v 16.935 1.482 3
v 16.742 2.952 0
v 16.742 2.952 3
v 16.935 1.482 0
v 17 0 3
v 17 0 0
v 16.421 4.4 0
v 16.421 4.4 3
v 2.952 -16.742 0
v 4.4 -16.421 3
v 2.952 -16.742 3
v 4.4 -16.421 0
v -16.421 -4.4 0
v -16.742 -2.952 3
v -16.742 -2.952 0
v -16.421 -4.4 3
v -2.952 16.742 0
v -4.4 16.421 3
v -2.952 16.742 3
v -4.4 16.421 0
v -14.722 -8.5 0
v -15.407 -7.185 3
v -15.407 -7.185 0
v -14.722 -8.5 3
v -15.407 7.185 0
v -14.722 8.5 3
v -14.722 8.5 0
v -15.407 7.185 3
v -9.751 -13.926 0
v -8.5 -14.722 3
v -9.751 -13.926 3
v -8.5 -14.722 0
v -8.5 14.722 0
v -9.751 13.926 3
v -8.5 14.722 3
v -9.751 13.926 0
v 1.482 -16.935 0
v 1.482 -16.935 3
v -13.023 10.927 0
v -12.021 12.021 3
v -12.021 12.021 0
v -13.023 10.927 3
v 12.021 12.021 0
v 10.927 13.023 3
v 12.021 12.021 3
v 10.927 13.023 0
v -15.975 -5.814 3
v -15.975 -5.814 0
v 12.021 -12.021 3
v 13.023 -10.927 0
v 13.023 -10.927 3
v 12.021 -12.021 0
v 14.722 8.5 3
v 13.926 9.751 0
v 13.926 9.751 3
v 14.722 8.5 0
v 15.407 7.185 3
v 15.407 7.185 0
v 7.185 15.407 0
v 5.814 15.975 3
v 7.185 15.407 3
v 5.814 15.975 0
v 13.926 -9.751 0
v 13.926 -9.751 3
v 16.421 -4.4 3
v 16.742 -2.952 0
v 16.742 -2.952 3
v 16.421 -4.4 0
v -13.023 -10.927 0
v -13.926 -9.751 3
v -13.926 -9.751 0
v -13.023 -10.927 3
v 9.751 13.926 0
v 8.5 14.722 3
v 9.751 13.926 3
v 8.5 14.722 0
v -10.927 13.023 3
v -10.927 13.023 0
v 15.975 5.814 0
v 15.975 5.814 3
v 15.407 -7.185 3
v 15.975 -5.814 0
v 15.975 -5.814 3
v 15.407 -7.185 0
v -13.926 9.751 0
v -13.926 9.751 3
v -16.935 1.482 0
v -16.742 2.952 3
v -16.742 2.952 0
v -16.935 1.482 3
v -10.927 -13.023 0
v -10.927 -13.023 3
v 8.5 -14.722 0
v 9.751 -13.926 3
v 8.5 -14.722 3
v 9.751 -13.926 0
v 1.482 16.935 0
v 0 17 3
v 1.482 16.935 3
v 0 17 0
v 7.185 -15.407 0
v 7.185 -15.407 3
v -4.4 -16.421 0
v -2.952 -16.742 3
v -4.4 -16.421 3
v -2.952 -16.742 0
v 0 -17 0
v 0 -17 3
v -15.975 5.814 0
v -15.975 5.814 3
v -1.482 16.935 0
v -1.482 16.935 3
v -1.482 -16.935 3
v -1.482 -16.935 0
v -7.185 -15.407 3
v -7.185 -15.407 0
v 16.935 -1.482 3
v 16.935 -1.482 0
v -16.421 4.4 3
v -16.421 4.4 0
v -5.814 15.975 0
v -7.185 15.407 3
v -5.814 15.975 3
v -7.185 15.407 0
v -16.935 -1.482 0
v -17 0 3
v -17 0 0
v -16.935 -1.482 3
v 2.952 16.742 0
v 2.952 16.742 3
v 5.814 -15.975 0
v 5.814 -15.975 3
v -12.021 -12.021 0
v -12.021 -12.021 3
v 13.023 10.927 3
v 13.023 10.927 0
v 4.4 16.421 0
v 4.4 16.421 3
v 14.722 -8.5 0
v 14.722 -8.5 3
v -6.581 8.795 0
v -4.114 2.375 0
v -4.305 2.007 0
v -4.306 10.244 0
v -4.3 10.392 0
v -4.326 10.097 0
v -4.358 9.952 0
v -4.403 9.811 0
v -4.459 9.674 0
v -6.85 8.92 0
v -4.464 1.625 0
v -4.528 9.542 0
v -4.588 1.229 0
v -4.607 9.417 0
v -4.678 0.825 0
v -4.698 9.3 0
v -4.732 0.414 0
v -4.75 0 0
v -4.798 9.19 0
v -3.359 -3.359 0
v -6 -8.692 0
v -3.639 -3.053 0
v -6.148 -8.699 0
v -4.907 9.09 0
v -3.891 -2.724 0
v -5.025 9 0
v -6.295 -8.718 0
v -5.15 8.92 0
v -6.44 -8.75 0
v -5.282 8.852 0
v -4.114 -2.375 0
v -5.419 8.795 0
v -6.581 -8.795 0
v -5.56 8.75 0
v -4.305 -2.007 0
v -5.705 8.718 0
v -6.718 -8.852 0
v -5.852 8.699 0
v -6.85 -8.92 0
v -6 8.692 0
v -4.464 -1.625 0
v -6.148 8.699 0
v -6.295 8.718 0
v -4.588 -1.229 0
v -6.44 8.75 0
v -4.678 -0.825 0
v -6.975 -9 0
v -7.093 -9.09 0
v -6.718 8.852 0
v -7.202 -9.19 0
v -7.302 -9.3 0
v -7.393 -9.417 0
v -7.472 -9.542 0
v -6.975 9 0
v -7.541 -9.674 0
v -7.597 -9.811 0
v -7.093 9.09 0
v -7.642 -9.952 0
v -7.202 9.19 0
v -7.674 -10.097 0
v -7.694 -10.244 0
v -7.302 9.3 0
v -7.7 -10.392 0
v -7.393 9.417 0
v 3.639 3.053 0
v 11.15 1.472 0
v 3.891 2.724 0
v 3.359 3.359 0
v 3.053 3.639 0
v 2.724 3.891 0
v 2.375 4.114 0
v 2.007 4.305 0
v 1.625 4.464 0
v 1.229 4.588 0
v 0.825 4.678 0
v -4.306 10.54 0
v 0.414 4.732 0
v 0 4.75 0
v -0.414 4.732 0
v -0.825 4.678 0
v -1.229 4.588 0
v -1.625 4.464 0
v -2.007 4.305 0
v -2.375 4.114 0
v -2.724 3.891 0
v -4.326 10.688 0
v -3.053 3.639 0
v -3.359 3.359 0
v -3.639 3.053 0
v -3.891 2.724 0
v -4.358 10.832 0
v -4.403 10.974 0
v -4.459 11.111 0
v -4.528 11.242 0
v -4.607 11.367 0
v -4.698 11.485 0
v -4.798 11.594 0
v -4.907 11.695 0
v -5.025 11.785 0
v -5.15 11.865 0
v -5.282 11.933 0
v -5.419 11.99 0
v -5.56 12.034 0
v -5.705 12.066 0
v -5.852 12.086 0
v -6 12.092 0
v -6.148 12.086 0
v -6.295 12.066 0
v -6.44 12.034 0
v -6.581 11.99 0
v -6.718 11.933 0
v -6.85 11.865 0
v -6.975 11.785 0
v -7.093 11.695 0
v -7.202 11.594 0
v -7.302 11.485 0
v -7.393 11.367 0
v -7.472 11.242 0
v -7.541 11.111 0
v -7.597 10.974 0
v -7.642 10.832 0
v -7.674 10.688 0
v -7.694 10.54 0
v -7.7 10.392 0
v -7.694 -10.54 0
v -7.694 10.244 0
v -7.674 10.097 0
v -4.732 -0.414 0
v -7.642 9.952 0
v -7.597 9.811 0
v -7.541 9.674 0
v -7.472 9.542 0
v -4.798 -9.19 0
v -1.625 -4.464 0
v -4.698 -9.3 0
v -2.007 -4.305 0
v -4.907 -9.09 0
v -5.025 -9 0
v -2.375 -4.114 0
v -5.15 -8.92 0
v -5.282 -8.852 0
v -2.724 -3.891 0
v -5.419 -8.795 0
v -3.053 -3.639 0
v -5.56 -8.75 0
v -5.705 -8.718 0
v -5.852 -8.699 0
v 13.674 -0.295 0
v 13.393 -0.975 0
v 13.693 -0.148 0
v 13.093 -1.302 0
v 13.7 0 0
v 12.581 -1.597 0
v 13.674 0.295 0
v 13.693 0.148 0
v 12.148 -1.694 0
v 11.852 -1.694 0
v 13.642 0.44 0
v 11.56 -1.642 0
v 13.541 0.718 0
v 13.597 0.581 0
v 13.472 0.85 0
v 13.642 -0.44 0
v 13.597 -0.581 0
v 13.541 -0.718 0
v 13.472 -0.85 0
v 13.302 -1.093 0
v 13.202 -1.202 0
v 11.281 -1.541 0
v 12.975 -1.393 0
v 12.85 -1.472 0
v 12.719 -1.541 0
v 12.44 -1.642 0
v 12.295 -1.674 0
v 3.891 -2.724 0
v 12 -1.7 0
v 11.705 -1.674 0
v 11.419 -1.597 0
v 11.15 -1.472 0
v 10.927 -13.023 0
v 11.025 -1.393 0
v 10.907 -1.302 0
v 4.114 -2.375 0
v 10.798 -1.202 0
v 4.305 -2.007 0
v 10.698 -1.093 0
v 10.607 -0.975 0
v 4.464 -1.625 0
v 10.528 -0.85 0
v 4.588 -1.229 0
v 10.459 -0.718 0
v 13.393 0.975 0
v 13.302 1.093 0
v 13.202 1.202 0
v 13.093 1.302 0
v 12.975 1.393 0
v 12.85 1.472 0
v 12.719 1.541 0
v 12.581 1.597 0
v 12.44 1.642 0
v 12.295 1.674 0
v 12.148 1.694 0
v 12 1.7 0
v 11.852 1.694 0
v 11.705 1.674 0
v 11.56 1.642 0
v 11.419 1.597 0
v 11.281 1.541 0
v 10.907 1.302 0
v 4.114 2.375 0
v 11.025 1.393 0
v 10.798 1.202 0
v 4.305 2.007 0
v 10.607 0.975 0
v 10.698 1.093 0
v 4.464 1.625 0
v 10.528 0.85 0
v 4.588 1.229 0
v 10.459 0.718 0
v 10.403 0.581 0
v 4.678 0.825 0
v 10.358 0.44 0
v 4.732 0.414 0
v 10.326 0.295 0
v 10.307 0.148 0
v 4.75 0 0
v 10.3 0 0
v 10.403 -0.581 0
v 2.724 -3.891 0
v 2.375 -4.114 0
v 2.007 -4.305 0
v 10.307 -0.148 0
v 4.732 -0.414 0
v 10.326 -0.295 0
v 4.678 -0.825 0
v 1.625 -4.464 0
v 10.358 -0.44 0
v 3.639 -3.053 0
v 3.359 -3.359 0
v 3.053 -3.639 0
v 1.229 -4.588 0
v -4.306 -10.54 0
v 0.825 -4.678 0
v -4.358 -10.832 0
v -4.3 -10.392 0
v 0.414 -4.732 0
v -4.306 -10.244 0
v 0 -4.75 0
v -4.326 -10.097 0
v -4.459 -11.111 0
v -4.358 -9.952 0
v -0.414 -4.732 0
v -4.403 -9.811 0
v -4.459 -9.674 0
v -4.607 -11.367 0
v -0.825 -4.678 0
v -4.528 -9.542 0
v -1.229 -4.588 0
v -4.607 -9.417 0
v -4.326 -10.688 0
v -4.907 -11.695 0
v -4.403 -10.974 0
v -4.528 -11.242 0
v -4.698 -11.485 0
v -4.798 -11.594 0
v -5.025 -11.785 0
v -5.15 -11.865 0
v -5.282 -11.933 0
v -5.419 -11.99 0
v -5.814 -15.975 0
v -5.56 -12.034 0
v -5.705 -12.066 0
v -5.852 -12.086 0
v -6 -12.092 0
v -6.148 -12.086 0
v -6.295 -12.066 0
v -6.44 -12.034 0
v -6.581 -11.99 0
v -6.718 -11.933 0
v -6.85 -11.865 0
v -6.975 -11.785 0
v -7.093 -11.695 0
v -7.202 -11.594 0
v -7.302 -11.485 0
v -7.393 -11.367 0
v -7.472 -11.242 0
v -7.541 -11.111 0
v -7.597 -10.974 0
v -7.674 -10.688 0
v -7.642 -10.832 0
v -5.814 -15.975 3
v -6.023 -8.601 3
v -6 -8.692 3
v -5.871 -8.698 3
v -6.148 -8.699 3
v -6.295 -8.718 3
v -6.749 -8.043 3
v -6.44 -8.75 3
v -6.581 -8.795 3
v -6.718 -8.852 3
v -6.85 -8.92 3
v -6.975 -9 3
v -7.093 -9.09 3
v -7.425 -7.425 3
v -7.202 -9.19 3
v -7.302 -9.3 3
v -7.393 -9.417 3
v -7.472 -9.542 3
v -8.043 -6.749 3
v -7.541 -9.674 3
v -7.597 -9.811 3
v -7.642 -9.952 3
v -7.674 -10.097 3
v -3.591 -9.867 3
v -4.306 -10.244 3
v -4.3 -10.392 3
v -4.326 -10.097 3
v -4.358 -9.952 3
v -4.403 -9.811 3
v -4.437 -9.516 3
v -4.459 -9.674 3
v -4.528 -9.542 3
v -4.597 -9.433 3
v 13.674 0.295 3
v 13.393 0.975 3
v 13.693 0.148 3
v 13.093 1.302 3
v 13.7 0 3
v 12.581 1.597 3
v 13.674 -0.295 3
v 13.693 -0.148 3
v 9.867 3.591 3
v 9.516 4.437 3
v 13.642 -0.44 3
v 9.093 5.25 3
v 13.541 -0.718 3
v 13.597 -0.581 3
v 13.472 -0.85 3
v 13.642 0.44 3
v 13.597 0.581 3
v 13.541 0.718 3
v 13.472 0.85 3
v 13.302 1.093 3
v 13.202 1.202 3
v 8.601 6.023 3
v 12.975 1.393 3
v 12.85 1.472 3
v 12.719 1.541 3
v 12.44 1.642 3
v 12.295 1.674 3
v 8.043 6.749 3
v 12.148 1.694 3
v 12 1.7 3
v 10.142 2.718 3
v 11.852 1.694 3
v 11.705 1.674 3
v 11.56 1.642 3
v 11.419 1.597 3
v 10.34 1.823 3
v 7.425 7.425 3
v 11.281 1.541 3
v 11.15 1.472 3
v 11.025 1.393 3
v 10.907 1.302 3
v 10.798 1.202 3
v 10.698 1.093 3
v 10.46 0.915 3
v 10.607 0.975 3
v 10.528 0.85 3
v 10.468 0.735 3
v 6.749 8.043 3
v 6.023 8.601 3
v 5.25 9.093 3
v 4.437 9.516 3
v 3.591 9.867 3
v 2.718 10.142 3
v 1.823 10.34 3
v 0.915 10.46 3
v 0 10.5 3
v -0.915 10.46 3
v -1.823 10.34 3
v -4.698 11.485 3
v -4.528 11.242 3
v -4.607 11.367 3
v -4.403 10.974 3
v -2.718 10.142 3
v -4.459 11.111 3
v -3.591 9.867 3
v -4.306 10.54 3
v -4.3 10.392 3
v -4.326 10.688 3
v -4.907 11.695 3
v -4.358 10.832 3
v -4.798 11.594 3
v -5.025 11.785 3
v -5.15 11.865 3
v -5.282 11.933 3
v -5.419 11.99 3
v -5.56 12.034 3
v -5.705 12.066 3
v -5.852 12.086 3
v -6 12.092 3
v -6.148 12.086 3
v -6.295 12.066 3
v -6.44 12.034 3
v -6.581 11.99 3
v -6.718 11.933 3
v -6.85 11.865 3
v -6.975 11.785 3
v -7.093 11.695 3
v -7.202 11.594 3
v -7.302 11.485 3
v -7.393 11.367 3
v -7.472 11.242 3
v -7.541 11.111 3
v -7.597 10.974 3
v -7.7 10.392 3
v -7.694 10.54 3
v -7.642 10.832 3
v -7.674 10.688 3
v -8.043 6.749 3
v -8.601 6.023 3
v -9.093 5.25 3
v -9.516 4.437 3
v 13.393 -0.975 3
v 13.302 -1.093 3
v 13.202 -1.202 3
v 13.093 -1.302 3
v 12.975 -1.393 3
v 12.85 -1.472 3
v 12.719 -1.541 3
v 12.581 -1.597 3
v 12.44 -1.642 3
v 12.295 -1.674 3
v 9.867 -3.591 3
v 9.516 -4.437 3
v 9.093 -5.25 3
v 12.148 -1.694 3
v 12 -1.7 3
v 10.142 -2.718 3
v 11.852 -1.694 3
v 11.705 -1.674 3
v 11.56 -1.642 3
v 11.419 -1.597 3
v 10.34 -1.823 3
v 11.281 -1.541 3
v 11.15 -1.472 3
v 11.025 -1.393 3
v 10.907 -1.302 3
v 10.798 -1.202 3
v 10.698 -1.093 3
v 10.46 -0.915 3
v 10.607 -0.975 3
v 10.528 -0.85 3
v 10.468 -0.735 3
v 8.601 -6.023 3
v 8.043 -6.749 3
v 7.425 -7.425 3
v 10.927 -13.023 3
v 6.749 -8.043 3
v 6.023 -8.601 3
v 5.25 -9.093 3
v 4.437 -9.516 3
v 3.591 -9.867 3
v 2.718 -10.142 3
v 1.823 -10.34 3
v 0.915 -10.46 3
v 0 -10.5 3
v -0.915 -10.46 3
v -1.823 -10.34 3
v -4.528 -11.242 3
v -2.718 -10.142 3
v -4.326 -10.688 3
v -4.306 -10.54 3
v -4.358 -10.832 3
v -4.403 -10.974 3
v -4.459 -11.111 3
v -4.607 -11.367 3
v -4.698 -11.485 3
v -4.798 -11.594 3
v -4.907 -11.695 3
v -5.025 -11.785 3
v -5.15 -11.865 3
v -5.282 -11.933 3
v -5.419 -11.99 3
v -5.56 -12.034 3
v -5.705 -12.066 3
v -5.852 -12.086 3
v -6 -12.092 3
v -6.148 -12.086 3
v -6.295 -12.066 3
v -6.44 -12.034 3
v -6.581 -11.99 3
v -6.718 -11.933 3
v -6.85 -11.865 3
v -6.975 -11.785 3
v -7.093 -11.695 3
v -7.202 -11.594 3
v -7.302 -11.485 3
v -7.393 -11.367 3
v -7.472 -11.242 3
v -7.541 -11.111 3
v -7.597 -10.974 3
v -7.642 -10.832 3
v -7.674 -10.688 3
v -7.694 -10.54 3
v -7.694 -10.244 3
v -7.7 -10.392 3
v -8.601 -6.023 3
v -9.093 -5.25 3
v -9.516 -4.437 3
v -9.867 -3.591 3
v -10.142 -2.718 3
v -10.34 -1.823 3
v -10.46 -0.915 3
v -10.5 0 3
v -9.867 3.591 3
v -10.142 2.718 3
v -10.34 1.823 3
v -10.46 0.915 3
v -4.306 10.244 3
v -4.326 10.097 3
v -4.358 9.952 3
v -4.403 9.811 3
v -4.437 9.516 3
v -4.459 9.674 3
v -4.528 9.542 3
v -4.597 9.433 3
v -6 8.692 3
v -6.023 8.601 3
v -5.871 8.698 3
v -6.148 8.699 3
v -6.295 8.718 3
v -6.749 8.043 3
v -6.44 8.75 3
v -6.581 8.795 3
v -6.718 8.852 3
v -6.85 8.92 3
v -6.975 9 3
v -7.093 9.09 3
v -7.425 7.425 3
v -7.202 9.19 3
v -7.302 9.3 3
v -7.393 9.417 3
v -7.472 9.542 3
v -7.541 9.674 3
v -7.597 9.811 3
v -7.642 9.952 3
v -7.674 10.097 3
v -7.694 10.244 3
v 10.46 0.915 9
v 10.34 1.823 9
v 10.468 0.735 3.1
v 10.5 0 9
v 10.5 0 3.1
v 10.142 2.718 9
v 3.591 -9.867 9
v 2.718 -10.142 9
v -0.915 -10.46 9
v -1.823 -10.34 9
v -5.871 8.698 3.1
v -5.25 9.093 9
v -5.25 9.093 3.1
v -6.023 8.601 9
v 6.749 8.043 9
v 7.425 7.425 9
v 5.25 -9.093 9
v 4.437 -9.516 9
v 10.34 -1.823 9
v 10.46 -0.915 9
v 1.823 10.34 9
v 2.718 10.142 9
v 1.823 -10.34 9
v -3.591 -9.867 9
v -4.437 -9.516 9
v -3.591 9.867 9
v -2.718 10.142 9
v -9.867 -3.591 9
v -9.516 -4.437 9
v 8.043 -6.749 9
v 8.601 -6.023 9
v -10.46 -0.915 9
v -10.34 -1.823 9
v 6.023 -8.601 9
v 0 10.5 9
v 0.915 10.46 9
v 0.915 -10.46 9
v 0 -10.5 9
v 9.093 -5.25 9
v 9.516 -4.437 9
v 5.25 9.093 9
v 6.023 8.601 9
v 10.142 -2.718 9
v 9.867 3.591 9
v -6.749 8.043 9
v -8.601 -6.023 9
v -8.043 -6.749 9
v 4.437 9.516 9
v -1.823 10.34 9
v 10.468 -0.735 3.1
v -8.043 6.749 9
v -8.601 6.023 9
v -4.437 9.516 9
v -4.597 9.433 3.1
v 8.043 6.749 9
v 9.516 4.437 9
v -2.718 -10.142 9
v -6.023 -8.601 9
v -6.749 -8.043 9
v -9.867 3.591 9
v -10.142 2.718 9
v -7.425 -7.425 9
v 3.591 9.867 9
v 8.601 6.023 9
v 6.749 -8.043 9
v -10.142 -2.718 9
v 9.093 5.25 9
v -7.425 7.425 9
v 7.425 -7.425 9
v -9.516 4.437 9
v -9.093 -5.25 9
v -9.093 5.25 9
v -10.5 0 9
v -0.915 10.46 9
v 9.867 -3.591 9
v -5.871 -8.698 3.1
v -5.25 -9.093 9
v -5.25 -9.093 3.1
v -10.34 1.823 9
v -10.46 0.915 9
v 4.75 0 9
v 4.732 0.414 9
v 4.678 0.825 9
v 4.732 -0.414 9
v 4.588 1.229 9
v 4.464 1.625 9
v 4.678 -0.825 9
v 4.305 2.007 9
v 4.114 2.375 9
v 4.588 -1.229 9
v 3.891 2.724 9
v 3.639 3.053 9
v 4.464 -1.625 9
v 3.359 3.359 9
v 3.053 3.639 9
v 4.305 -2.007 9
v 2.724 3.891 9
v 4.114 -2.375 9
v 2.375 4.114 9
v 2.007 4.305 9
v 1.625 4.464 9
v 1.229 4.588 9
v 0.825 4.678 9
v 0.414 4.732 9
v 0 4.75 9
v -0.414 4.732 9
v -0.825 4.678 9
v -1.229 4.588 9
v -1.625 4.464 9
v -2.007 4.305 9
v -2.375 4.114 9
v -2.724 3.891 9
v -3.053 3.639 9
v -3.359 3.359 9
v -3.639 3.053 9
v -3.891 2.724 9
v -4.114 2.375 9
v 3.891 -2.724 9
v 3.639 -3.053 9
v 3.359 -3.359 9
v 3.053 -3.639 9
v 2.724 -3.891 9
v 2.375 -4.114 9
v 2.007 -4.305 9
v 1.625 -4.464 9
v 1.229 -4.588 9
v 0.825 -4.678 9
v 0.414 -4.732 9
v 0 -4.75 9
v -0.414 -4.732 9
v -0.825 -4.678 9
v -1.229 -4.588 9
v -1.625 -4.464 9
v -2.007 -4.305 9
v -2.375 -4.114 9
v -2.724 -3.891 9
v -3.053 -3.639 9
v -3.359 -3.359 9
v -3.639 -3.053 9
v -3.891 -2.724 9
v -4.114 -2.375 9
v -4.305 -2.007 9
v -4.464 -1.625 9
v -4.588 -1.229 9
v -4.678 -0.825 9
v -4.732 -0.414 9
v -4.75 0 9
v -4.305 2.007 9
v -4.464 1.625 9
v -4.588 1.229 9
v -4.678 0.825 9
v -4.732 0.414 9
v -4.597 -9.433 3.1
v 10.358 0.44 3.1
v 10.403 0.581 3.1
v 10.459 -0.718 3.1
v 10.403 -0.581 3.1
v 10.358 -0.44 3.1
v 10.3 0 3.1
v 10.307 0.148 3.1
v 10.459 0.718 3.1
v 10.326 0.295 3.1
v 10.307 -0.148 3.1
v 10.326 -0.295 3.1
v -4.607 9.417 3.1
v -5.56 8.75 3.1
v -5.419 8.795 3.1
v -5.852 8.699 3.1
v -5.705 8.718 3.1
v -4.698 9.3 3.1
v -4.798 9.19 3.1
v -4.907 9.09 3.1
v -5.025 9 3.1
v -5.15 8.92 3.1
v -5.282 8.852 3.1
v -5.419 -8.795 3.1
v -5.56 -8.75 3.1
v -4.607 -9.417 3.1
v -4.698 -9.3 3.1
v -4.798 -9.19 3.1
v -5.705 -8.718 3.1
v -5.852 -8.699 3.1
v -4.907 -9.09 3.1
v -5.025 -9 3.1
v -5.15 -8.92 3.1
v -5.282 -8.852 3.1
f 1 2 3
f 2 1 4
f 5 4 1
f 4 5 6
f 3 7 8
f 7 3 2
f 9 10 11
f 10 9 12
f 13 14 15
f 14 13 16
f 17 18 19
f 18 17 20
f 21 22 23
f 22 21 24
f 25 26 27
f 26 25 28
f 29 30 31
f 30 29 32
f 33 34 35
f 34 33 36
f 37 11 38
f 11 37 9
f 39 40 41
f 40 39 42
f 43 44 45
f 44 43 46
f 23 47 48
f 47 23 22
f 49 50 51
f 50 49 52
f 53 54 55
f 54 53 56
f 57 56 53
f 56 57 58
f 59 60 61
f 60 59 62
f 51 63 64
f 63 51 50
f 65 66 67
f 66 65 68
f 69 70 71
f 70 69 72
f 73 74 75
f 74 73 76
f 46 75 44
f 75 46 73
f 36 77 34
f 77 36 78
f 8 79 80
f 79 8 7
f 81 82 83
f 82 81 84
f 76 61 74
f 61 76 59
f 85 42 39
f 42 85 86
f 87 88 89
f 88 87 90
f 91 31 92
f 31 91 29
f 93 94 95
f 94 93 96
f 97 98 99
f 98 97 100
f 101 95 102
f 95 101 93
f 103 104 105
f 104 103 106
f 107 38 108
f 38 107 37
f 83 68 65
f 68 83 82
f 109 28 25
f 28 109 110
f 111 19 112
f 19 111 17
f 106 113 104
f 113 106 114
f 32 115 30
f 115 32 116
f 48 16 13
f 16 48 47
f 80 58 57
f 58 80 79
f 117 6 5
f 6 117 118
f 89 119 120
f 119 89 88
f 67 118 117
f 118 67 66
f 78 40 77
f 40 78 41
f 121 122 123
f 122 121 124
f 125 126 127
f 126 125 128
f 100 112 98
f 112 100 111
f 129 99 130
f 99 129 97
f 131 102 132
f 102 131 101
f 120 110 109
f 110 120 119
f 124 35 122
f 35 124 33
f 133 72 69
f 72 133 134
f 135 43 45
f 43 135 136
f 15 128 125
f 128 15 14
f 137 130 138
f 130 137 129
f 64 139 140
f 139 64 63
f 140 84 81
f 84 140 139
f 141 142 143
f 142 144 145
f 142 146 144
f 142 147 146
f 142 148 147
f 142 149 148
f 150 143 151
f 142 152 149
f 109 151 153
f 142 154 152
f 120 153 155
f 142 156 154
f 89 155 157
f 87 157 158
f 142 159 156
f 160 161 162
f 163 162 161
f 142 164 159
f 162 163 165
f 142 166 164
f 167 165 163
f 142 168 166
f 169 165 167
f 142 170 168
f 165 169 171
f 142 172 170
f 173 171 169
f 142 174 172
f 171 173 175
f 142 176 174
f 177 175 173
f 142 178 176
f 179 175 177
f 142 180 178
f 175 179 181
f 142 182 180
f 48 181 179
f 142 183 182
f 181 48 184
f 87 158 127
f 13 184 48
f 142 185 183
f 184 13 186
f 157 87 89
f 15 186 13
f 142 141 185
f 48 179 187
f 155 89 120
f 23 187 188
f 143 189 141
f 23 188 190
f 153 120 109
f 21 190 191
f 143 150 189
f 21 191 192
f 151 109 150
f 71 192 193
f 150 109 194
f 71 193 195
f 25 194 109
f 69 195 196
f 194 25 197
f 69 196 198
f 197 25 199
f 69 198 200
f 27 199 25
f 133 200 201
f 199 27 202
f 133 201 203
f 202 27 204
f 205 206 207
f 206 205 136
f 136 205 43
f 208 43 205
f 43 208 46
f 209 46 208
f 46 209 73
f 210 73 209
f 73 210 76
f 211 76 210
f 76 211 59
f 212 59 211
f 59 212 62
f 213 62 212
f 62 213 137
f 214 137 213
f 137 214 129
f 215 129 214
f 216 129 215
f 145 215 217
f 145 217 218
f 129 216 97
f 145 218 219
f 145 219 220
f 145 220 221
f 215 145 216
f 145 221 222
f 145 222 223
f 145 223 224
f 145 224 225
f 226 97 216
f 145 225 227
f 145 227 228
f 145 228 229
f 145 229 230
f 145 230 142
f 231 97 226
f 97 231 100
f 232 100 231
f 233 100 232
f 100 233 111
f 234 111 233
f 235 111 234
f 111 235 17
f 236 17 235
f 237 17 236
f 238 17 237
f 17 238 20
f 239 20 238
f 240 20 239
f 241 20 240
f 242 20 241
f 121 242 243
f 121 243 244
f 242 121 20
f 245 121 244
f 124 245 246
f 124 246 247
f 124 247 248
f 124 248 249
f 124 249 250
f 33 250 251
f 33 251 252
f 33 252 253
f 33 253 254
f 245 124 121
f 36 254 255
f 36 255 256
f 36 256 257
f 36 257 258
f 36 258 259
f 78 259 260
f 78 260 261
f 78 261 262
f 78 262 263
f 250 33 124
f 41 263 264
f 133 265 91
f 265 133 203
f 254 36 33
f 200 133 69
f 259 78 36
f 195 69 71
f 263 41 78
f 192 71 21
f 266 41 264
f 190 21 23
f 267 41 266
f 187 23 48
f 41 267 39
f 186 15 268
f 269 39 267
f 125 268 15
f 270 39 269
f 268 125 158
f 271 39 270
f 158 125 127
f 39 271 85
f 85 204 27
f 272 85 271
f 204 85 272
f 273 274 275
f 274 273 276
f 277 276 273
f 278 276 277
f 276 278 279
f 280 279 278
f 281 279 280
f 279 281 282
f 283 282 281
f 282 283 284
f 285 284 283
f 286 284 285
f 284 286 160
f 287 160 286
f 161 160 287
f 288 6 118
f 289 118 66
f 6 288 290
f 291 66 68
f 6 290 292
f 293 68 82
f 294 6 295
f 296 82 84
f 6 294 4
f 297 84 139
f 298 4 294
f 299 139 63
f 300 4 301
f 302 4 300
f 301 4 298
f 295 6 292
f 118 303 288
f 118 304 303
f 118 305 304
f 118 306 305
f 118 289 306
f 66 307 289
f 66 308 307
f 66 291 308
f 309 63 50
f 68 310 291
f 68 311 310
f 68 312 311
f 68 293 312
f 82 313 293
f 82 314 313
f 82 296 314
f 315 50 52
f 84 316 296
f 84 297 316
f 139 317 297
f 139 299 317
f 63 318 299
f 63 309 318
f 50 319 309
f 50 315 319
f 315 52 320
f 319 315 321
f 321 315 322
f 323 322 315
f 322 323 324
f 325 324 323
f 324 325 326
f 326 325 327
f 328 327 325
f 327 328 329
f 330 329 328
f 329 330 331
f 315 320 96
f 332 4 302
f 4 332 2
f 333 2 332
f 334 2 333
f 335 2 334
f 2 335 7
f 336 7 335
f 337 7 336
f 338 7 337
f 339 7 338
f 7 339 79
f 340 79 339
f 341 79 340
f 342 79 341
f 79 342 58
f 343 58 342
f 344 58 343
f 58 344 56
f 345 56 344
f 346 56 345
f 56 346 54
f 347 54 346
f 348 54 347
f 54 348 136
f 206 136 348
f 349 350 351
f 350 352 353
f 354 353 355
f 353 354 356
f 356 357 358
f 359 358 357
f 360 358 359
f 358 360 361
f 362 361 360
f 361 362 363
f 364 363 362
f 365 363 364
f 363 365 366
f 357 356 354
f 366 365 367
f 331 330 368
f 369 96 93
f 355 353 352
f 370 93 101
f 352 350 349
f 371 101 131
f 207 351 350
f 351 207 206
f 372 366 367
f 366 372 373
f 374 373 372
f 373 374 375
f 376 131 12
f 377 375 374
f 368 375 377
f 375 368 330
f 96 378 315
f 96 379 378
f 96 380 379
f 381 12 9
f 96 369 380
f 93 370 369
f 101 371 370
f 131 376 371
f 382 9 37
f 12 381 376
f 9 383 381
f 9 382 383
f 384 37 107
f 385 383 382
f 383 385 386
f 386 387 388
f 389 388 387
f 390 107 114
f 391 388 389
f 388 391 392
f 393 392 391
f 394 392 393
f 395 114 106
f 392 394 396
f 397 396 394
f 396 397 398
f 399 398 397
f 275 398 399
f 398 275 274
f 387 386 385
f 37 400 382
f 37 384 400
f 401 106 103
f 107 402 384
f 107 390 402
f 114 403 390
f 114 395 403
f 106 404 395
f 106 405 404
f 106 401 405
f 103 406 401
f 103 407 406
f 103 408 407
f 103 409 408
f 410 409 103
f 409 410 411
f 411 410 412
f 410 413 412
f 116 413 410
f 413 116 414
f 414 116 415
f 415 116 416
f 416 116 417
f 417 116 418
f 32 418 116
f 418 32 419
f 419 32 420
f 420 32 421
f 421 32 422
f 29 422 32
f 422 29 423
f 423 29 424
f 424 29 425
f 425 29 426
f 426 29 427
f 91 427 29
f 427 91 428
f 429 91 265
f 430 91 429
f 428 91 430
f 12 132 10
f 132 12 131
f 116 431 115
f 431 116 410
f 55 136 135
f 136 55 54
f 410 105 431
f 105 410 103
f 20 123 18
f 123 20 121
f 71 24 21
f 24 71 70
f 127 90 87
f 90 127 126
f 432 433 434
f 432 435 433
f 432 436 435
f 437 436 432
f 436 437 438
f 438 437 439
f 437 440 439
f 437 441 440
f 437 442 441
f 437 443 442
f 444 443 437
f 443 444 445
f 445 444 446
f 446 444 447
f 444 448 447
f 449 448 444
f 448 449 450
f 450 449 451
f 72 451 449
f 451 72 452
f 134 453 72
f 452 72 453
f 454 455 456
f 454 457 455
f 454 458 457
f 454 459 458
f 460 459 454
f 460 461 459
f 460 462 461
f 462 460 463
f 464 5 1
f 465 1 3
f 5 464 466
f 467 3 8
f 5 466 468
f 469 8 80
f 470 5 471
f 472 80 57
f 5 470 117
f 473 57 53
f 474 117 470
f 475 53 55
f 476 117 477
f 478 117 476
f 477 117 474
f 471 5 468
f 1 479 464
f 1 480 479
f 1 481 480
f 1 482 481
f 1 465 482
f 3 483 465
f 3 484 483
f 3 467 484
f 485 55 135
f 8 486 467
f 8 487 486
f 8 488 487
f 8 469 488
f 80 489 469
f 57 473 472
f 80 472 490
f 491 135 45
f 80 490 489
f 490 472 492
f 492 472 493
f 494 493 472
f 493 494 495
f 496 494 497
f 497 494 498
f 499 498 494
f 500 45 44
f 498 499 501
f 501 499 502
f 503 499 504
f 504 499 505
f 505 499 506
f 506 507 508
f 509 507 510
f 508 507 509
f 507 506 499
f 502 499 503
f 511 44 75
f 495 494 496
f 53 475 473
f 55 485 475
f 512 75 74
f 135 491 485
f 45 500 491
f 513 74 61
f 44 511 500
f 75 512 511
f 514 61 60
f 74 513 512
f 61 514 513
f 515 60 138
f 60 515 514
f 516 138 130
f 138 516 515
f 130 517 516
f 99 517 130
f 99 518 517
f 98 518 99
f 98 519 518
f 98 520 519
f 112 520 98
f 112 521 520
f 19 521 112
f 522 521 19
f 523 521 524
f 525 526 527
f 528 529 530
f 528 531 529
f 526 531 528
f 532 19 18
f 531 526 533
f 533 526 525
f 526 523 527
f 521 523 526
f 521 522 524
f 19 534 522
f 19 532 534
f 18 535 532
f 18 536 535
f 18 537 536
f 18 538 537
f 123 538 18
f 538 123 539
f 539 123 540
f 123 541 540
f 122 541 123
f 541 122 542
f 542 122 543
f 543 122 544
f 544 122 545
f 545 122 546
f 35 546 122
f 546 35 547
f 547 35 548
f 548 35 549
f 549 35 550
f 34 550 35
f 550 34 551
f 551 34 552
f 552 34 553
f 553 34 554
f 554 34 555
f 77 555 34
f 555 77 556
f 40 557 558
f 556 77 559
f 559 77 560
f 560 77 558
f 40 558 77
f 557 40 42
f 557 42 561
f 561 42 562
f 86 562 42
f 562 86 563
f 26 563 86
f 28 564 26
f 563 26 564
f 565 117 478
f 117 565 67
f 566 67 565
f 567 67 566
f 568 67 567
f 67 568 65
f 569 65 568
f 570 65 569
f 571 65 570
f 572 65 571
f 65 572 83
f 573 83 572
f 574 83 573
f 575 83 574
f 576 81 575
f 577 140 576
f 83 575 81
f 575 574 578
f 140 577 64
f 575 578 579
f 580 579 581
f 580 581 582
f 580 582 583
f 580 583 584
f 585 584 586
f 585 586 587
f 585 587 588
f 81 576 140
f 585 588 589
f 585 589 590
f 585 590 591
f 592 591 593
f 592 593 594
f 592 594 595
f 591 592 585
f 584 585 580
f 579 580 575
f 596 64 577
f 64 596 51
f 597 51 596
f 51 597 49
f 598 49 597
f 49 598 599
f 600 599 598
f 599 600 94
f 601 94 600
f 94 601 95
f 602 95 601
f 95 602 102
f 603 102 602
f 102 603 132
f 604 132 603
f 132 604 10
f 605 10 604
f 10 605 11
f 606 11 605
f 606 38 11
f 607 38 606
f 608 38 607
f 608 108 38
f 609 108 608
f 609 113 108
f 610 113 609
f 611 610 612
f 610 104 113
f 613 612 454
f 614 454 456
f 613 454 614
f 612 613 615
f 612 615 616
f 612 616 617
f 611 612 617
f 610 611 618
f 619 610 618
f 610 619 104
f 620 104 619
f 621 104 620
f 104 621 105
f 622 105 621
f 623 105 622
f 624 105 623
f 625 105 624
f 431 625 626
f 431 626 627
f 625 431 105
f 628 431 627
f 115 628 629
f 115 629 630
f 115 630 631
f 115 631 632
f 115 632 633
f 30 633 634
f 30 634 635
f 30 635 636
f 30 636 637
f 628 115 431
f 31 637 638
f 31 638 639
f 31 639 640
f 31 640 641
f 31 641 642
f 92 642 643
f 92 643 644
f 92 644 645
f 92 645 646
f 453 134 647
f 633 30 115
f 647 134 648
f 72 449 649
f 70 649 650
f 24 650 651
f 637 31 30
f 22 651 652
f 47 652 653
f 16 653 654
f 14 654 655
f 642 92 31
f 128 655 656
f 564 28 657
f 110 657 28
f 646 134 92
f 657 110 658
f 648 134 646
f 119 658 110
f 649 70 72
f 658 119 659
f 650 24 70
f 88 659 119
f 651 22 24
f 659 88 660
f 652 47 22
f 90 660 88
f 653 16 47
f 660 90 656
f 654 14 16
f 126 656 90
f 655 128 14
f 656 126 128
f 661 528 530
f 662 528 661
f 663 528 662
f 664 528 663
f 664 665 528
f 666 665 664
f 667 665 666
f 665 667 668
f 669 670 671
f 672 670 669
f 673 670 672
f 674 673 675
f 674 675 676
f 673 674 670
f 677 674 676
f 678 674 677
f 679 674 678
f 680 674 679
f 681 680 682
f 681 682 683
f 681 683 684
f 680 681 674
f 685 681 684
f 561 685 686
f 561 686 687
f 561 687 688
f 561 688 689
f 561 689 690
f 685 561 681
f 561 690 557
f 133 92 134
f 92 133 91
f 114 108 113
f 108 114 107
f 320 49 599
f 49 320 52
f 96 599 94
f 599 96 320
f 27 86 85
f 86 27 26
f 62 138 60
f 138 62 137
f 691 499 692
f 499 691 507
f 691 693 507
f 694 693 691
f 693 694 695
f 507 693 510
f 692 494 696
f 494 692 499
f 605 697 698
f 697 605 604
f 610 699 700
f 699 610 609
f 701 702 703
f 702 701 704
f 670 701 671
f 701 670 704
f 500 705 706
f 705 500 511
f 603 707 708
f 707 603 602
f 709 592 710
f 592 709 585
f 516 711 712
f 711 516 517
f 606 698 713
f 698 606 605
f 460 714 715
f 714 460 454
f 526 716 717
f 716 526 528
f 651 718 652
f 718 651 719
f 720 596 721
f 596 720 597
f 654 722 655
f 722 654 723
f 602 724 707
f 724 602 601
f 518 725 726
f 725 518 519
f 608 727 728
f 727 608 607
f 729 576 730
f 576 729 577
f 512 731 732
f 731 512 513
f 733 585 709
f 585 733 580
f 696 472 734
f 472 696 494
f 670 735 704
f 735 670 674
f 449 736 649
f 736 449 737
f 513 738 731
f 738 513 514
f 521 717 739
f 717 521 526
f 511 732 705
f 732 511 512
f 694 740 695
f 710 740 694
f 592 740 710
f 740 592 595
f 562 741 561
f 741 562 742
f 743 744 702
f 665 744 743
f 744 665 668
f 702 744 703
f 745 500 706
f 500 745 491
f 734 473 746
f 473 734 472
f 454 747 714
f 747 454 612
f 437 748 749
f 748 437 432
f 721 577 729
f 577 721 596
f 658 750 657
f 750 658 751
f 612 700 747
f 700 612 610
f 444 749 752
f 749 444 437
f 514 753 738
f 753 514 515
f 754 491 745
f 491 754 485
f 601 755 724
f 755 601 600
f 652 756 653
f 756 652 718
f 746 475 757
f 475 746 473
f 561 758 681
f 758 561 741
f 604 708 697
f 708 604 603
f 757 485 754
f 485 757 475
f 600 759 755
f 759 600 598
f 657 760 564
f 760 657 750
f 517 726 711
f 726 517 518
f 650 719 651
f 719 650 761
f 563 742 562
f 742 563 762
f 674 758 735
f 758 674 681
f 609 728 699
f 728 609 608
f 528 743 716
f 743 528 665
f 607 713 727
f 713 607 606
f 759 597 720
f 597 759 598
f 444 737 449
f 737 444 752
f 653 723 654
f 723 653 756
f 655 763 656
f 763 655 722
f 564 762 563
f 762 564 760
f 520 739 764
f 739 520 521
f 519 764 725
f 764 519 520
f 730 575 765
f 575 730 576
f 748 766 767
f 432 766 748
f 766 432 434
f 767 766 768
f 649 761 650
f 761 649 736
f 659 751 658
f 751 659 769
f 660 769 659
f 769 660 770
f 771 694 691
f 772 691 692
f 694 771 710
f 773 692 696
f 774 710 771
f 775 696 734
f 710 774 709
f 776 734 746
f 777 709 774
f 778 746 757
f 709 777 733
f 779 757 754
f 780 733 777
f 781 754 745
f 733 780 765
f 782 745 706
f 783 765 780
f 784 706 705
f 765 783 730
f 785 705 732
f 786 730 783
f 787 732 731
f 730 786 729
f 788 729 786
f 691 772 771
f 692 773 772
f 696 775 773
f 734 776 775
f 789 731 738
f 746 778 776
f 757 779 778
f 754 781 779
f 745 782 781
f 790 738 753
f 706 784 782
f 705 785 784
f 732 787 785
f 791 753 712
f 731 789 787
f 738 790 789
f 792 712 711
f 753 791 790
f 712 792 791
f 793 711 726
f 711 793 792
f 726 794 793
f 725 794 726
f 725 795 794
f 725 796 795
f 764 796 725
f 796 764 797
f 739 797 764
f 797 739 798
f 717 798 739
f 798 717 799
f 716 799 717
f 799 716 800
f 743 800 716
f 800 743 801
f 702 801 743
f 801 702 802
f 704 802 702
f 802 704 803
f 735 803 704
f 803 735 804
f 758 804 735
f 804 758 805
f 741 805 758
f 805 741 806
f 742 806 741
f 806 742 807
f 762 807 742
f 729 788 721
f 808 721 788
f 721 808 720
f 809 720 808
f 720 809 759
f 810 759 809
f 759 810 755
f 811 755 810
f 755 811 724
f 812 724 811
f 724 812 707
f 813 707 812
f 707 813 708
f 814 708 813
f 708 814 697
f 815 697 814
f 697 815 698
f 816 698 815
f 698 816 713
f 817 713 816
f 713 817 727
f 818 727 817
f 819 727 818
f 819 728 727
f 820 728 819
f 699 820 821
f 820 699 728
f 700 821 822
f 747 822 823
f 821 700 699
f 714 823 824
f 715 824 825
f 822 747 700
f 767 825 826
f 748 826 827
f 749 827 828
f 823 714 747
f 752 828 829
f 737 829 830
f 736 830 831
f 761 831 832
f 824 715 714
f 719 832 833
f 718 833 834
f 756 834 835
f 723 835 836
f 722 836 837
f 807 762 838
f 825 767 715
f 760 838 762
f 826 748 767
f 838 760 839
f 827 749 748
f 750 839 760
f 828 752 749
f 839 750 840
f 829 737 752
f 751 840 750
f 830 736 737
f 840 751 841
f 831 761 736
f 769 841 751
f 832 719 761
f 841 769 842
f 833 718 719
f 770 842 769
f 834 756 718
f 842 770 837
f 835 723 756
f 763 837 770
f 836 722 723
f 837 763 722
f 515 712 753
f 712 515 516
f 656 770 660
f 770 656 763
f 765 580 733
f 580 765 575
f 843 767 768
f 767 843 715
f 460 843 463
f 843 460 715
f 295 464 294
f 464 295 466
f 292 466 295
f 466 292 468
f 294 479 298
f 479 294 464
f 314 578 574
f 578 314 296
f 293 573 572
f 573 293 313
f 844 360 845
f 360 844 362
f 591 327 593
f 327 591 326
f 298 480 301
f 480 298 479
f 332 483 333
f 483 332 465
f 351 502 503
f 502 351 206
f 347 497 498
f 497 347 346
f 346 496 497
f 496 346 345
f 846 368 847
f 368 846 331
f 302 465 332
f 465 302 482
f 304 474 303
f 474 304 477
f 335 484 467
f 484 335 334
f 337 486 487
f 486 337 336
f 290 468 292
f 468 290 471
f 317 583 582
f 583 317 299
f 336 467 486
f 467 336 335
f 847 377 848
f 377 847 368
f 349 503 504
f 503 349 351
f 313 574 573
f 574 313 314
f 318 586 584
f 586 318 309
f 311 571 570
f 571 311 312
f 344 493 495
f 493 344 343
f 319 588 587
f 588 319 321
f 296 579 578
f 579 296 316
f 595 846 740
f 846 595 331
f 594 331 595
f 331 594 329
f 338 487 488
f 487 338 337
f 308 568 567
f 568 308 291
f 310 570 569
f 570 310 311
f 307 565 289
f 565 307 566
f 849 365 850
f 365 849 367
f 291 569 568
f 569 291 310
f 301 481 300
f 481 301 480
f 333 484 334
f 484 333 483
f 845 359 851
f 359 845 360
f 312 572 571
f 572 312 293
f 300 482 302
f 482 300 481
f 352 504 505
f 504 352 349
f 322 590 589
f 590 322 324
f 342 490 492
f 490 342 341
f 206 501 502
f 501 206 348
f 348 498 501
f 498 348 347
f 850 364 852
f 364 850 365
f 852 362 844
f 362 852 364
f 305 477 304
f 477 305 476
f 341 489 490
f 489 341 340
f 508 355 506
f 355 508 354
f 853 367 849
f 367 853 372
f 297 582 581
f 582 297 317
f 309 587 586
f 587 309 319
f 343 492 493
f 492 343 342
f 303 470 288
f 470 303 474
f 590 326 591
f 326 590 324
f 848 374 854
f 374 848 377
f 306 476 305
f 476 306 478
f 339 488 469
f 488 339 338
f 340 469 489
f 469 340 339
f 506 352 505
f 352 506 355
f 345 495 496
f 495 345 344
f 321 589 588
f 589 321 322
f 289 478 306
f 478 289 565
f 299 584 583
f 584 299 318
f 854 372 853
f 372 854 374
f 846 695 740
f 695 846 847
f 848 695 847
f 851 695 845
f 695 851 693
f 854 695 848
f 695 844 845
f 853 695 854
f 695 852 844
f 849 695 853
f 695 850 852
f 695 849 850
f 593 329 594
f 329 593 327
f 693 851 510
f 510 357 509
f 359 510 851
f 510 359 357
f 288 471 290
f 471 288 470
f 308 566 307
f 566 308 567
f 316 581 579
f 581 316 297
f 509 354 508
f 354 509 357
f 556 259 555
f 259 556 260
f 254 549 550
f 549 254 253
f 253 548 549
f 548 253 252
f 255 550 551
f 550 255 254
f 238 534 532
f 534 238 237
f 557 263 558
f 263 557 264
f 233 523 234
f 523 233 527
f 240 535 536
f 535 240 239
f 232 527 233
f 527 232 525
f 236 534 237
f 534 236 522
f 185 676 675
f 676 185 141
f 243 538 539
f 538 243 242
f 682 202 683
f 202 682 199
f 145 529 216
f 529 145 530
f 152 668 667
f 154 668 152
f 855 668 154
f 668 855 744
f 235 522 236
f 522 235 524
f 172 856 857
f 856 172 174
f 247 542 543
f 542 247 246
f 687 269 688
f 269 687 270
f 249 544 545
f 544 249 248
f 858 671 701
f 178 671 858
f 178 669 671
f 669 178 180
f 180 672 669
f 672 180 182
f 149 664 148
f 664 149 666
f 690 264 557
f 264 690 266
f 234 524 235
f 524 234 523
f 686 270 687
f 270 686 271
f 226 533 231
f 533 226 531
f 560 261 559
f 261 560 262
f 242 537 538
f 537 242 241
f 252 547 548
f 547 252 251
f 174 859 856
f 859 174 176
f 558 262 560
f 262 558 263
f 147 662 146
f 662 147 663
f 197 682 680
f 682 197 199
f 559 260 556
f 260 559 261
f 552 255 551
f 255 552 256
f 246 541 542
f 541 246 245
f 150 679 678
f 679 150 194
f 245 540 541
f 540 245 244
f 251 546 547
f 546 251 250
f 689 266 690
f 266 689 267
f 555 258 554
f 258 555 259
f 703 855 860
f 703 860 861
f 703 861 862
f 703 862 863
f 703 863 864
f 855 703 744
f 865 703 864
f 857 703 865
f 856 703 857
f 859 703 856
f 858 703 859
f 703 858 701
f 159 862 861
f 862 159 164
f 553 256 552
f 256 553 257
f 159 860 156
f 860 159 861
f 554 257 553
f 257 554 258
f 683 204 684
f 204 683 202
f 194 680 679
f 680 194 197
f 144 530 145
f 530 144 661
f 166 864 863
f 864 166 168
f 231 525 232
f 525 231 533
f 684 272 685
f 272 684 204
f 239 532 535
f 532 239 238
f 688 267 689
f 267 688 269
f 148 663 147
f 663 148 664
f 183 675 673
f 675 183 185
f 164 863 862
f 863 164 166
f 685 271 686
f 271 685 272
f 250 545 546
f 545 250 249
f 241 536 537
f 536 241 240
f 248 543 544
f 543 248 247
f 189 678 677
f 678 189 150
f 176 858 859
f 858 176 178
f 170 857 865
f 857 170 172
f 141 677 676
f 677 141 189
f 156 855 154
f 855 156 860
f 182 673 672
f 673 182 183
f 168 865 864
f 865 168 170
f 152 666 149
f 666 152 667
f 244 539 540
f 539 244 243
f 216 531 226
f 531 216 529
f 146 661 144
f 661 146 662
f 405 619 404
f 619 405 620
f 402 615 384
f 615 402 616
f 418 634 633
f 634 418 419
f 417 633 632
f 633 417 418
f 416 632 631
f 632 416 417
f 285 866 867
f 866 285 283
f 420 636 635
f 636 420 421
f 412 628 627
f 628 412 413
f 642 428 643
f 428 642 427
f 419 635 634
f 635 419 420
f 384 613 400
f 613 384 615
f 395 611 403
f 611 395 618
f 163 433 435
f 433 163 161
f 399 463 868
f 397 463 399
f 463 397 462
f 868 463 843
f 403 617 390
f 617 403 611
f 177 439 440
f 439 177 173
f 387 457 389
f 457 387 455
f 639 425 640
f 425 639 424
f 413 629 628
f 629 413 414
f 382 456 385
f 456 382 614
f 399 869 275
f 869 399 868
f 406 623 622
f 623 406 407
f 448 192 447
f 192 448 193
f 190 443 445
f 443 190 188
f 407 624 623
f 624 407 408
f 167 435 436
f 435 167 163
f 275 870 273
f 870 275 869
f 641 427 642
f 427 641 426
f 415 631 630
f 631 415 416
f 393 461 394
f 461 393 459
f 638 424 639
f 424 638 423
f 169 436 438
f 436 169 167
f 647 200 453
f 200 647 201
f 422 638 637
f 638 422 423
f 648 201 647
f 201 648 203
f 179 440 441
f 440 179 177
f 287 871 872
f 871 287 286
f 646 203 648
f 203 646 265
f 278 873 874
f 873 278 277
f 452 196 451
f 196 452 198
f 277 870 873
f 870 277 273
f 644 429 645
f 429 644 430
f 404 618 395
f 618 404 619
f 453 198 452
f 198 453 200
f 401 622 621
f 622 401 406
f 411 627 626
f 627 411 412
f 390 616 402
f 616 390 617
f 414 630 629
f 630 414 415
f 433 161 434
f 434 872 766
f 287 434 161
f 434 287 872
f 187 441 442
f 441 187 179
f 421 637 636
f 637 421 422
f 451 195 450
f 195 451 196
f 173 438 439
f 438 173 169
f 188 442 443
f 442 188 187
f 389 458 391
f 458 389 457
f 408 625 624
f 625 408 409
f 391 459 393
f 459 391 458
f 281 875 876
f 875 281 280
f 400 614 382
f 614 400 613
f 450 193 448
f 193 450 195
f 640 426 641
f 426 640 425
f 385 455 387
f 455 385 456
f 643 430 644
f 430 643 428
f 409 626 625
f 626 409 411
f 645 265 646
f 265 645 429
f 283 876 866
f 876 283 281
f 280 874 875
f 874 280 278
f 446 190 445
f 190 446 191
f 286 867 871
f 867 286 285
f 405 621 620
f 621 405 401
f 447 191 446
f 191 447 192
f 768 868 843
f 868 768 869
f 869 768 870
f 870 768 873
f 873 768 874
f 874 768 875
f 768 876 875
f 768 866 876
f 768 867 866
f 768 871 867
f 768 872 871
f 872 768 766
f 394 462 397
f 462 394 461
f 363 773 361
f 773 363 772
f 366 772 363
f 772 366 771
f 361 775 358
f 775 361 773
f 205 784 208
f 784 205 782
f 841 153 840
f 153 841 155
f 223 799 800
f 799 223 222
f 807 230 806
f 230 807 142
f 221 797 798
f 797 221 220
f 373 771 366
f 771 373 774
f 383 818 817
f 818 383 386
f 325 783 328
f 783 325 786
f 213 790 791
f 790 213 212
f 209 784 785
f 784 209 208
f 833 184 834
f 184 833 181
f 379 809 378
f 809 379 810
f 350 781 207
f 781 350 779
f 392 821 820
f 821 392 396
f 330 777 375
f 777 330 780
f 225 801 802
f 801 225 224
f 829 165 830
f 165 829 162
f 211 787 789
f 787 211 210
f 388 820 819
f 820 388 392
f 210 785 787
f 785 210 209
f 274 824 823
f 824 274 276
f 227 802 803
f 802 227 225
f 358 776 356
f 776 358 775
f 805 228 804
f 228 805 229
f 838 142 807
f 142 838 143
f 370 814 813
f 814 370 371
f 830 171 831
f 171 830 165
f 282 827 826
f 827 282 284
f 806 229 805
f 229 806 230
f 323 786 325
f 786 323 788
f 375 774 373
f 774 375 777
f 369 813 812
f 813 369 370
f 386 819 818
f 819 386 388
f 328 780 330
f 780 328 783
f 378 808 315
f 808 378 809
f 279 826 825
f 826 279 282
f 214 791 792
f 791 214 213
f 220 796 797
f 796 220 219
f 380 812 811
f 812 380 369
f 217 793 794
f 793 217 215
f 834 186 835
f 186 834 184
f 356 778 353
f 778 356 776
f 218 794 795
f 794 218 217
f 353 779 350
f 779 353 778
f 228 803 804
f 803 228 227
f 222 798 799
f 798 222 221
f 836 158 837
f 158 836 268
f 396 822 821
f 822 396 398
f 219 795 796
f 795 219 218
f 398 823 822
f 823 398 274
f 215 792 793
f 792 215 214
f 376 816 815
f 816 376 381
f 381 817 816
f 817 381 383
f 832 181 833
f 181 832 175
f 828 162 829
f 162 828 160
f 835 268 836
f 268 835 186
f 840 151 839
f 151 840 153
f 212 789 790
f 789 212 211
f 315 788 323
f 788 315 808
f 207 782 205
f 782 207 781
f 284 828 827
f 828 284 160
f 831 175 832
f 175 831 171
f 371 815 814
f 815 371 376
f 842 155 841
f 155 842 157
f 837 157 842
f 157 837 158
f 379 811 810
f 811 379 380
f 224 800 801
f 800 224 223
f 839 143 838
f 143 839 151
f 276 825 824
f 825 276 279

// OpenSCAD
// file: parameters.scad
// AFPM-Desk-v2 shared parameters (mm)
// Dual-rotor axial-flux PM learning generator with steel back-iron.
// Faraday induction education only — not free-energy / overunity.
// Target printer: Anycubic Kobra 3 Max, 0.4 mm nozzle, 0.2 mm layers, PLA/PETG.

$fn = 72;

// --- Printer / FDM assumptions ---
nozzle = 0.4;
layer = 0.2;
wall = 1.6;                 // load-bearing walls ~4 perimeters
housing_wall = 2.4;
clearance_slip = 0.35;      // shaft slip fit
clearance_loose = 0.55;
press_interference = 0.15;  // bearing pocket undersize total (coupon-test)
magnet_pocket_xy = 0.25;    // +0.25 mm on diameter
magnet_pocket_z = 0.15;     // +0.15 mm depth
elephant_foot = 0.5;

// --- Magnets (N42 Neo discs) ---
magnet_d = 20;
magnet_h = 3;
magnet_count = 8;           // per rotor (8+8 total)
magnet_pcd = 70;

// --- Steel back-iron (purchased mild steel disc) ---
steel_od = 100;
steel_id = 14;              // clearance around hub boss
steel_h = 1.5;              // 1.5–2.0 mm mild steel OK
steel_recess_clearance = 0.3;

// --- Rotor printed disc ---
rotor_od = 110;
rotor_hub_bore = 12;        // seats on shaft_hub boss
rotor_thickness = 7;        // magnet pocket from face; steel recess on back
magnet_pocket_depth = magnet_h + magnet_pocket_z;
steel_recess_depth = steel_h + 0.2;

// --- Stator (coreless, between rotors) ---
stator_od = 120;
stator_id = 28;
stator_thickness = 10;
coil_count = 6;
coil_slot_w = 24;
coil_slot_l = 30;           // radial length of pocket
coil_slot_depth = 8;
coil_pcd = 70;
stator_pillar_pcd = 100;    // M4 pillar holes

// --- Coil former / bobbin ---
former_core_w = 14;
former_core_l = 26;
former_flange = 3;
former_wind_h = 11;
former_bore = 0;            // solid core, split design via kerf

// --- Shaft / bearings ---
shaft_d = 8;
bearing_od = 22;            // 608-2RS
bearing_id = 8;
bearing_h = 7;
bearing_seat_od = bearing_od - press_interference; // coupon-test; start ~21.85

// --- Base / frame ---
base_w = 180;
base_d = 160;
base_h = 8;
post_h = 70;
post_spacing = 120;         // Y distance between bearing post centers
post_d = 36;

// --- Axial stack targets (along shaft / Y) ---
// crank | brg | hub+rotorA+steel | air | stator | air | steel+rotorB+hub | brg
air_gap_nominal = 2.0;      // mechanical per side magnet↔coil face

// --- Crank ---
crank_arm_len = 85;
crank_arm_w = 18;
crank_arm_t = 10;
handle_d = 14;
handle_len = 45;

// --- Electronics tray ---
tray_w = 75;
tray_d = 55;
tray_h = 14;

// --- Fasteners ---
m3_clear = 3.4;
m3_tap = 2.5;
m4_clear = 4.3;
// main file
include <parameters.scad>
// Print 2. Snaps/screws over bearing to retain.

module bearing_cap() {
  difference() {
    union() {
      cylinder(h=3, d=post_d - 2);
      cylinder(h=bearing_h + 2, d=bearing_od - 1);
    }
    translate([0,0,-0.1])
      cylinder(h=bearing_h + 2.2, d=shaft_d + 1.5);
    // M3 perimeter holes
    for (a = [0,120,240]) {
      rotate([0,0,a])
        translate([12, 0, -0.1])
          cylinder(h=3.2, d=m3_clear);
    }
  }
}

bearing_cap();
